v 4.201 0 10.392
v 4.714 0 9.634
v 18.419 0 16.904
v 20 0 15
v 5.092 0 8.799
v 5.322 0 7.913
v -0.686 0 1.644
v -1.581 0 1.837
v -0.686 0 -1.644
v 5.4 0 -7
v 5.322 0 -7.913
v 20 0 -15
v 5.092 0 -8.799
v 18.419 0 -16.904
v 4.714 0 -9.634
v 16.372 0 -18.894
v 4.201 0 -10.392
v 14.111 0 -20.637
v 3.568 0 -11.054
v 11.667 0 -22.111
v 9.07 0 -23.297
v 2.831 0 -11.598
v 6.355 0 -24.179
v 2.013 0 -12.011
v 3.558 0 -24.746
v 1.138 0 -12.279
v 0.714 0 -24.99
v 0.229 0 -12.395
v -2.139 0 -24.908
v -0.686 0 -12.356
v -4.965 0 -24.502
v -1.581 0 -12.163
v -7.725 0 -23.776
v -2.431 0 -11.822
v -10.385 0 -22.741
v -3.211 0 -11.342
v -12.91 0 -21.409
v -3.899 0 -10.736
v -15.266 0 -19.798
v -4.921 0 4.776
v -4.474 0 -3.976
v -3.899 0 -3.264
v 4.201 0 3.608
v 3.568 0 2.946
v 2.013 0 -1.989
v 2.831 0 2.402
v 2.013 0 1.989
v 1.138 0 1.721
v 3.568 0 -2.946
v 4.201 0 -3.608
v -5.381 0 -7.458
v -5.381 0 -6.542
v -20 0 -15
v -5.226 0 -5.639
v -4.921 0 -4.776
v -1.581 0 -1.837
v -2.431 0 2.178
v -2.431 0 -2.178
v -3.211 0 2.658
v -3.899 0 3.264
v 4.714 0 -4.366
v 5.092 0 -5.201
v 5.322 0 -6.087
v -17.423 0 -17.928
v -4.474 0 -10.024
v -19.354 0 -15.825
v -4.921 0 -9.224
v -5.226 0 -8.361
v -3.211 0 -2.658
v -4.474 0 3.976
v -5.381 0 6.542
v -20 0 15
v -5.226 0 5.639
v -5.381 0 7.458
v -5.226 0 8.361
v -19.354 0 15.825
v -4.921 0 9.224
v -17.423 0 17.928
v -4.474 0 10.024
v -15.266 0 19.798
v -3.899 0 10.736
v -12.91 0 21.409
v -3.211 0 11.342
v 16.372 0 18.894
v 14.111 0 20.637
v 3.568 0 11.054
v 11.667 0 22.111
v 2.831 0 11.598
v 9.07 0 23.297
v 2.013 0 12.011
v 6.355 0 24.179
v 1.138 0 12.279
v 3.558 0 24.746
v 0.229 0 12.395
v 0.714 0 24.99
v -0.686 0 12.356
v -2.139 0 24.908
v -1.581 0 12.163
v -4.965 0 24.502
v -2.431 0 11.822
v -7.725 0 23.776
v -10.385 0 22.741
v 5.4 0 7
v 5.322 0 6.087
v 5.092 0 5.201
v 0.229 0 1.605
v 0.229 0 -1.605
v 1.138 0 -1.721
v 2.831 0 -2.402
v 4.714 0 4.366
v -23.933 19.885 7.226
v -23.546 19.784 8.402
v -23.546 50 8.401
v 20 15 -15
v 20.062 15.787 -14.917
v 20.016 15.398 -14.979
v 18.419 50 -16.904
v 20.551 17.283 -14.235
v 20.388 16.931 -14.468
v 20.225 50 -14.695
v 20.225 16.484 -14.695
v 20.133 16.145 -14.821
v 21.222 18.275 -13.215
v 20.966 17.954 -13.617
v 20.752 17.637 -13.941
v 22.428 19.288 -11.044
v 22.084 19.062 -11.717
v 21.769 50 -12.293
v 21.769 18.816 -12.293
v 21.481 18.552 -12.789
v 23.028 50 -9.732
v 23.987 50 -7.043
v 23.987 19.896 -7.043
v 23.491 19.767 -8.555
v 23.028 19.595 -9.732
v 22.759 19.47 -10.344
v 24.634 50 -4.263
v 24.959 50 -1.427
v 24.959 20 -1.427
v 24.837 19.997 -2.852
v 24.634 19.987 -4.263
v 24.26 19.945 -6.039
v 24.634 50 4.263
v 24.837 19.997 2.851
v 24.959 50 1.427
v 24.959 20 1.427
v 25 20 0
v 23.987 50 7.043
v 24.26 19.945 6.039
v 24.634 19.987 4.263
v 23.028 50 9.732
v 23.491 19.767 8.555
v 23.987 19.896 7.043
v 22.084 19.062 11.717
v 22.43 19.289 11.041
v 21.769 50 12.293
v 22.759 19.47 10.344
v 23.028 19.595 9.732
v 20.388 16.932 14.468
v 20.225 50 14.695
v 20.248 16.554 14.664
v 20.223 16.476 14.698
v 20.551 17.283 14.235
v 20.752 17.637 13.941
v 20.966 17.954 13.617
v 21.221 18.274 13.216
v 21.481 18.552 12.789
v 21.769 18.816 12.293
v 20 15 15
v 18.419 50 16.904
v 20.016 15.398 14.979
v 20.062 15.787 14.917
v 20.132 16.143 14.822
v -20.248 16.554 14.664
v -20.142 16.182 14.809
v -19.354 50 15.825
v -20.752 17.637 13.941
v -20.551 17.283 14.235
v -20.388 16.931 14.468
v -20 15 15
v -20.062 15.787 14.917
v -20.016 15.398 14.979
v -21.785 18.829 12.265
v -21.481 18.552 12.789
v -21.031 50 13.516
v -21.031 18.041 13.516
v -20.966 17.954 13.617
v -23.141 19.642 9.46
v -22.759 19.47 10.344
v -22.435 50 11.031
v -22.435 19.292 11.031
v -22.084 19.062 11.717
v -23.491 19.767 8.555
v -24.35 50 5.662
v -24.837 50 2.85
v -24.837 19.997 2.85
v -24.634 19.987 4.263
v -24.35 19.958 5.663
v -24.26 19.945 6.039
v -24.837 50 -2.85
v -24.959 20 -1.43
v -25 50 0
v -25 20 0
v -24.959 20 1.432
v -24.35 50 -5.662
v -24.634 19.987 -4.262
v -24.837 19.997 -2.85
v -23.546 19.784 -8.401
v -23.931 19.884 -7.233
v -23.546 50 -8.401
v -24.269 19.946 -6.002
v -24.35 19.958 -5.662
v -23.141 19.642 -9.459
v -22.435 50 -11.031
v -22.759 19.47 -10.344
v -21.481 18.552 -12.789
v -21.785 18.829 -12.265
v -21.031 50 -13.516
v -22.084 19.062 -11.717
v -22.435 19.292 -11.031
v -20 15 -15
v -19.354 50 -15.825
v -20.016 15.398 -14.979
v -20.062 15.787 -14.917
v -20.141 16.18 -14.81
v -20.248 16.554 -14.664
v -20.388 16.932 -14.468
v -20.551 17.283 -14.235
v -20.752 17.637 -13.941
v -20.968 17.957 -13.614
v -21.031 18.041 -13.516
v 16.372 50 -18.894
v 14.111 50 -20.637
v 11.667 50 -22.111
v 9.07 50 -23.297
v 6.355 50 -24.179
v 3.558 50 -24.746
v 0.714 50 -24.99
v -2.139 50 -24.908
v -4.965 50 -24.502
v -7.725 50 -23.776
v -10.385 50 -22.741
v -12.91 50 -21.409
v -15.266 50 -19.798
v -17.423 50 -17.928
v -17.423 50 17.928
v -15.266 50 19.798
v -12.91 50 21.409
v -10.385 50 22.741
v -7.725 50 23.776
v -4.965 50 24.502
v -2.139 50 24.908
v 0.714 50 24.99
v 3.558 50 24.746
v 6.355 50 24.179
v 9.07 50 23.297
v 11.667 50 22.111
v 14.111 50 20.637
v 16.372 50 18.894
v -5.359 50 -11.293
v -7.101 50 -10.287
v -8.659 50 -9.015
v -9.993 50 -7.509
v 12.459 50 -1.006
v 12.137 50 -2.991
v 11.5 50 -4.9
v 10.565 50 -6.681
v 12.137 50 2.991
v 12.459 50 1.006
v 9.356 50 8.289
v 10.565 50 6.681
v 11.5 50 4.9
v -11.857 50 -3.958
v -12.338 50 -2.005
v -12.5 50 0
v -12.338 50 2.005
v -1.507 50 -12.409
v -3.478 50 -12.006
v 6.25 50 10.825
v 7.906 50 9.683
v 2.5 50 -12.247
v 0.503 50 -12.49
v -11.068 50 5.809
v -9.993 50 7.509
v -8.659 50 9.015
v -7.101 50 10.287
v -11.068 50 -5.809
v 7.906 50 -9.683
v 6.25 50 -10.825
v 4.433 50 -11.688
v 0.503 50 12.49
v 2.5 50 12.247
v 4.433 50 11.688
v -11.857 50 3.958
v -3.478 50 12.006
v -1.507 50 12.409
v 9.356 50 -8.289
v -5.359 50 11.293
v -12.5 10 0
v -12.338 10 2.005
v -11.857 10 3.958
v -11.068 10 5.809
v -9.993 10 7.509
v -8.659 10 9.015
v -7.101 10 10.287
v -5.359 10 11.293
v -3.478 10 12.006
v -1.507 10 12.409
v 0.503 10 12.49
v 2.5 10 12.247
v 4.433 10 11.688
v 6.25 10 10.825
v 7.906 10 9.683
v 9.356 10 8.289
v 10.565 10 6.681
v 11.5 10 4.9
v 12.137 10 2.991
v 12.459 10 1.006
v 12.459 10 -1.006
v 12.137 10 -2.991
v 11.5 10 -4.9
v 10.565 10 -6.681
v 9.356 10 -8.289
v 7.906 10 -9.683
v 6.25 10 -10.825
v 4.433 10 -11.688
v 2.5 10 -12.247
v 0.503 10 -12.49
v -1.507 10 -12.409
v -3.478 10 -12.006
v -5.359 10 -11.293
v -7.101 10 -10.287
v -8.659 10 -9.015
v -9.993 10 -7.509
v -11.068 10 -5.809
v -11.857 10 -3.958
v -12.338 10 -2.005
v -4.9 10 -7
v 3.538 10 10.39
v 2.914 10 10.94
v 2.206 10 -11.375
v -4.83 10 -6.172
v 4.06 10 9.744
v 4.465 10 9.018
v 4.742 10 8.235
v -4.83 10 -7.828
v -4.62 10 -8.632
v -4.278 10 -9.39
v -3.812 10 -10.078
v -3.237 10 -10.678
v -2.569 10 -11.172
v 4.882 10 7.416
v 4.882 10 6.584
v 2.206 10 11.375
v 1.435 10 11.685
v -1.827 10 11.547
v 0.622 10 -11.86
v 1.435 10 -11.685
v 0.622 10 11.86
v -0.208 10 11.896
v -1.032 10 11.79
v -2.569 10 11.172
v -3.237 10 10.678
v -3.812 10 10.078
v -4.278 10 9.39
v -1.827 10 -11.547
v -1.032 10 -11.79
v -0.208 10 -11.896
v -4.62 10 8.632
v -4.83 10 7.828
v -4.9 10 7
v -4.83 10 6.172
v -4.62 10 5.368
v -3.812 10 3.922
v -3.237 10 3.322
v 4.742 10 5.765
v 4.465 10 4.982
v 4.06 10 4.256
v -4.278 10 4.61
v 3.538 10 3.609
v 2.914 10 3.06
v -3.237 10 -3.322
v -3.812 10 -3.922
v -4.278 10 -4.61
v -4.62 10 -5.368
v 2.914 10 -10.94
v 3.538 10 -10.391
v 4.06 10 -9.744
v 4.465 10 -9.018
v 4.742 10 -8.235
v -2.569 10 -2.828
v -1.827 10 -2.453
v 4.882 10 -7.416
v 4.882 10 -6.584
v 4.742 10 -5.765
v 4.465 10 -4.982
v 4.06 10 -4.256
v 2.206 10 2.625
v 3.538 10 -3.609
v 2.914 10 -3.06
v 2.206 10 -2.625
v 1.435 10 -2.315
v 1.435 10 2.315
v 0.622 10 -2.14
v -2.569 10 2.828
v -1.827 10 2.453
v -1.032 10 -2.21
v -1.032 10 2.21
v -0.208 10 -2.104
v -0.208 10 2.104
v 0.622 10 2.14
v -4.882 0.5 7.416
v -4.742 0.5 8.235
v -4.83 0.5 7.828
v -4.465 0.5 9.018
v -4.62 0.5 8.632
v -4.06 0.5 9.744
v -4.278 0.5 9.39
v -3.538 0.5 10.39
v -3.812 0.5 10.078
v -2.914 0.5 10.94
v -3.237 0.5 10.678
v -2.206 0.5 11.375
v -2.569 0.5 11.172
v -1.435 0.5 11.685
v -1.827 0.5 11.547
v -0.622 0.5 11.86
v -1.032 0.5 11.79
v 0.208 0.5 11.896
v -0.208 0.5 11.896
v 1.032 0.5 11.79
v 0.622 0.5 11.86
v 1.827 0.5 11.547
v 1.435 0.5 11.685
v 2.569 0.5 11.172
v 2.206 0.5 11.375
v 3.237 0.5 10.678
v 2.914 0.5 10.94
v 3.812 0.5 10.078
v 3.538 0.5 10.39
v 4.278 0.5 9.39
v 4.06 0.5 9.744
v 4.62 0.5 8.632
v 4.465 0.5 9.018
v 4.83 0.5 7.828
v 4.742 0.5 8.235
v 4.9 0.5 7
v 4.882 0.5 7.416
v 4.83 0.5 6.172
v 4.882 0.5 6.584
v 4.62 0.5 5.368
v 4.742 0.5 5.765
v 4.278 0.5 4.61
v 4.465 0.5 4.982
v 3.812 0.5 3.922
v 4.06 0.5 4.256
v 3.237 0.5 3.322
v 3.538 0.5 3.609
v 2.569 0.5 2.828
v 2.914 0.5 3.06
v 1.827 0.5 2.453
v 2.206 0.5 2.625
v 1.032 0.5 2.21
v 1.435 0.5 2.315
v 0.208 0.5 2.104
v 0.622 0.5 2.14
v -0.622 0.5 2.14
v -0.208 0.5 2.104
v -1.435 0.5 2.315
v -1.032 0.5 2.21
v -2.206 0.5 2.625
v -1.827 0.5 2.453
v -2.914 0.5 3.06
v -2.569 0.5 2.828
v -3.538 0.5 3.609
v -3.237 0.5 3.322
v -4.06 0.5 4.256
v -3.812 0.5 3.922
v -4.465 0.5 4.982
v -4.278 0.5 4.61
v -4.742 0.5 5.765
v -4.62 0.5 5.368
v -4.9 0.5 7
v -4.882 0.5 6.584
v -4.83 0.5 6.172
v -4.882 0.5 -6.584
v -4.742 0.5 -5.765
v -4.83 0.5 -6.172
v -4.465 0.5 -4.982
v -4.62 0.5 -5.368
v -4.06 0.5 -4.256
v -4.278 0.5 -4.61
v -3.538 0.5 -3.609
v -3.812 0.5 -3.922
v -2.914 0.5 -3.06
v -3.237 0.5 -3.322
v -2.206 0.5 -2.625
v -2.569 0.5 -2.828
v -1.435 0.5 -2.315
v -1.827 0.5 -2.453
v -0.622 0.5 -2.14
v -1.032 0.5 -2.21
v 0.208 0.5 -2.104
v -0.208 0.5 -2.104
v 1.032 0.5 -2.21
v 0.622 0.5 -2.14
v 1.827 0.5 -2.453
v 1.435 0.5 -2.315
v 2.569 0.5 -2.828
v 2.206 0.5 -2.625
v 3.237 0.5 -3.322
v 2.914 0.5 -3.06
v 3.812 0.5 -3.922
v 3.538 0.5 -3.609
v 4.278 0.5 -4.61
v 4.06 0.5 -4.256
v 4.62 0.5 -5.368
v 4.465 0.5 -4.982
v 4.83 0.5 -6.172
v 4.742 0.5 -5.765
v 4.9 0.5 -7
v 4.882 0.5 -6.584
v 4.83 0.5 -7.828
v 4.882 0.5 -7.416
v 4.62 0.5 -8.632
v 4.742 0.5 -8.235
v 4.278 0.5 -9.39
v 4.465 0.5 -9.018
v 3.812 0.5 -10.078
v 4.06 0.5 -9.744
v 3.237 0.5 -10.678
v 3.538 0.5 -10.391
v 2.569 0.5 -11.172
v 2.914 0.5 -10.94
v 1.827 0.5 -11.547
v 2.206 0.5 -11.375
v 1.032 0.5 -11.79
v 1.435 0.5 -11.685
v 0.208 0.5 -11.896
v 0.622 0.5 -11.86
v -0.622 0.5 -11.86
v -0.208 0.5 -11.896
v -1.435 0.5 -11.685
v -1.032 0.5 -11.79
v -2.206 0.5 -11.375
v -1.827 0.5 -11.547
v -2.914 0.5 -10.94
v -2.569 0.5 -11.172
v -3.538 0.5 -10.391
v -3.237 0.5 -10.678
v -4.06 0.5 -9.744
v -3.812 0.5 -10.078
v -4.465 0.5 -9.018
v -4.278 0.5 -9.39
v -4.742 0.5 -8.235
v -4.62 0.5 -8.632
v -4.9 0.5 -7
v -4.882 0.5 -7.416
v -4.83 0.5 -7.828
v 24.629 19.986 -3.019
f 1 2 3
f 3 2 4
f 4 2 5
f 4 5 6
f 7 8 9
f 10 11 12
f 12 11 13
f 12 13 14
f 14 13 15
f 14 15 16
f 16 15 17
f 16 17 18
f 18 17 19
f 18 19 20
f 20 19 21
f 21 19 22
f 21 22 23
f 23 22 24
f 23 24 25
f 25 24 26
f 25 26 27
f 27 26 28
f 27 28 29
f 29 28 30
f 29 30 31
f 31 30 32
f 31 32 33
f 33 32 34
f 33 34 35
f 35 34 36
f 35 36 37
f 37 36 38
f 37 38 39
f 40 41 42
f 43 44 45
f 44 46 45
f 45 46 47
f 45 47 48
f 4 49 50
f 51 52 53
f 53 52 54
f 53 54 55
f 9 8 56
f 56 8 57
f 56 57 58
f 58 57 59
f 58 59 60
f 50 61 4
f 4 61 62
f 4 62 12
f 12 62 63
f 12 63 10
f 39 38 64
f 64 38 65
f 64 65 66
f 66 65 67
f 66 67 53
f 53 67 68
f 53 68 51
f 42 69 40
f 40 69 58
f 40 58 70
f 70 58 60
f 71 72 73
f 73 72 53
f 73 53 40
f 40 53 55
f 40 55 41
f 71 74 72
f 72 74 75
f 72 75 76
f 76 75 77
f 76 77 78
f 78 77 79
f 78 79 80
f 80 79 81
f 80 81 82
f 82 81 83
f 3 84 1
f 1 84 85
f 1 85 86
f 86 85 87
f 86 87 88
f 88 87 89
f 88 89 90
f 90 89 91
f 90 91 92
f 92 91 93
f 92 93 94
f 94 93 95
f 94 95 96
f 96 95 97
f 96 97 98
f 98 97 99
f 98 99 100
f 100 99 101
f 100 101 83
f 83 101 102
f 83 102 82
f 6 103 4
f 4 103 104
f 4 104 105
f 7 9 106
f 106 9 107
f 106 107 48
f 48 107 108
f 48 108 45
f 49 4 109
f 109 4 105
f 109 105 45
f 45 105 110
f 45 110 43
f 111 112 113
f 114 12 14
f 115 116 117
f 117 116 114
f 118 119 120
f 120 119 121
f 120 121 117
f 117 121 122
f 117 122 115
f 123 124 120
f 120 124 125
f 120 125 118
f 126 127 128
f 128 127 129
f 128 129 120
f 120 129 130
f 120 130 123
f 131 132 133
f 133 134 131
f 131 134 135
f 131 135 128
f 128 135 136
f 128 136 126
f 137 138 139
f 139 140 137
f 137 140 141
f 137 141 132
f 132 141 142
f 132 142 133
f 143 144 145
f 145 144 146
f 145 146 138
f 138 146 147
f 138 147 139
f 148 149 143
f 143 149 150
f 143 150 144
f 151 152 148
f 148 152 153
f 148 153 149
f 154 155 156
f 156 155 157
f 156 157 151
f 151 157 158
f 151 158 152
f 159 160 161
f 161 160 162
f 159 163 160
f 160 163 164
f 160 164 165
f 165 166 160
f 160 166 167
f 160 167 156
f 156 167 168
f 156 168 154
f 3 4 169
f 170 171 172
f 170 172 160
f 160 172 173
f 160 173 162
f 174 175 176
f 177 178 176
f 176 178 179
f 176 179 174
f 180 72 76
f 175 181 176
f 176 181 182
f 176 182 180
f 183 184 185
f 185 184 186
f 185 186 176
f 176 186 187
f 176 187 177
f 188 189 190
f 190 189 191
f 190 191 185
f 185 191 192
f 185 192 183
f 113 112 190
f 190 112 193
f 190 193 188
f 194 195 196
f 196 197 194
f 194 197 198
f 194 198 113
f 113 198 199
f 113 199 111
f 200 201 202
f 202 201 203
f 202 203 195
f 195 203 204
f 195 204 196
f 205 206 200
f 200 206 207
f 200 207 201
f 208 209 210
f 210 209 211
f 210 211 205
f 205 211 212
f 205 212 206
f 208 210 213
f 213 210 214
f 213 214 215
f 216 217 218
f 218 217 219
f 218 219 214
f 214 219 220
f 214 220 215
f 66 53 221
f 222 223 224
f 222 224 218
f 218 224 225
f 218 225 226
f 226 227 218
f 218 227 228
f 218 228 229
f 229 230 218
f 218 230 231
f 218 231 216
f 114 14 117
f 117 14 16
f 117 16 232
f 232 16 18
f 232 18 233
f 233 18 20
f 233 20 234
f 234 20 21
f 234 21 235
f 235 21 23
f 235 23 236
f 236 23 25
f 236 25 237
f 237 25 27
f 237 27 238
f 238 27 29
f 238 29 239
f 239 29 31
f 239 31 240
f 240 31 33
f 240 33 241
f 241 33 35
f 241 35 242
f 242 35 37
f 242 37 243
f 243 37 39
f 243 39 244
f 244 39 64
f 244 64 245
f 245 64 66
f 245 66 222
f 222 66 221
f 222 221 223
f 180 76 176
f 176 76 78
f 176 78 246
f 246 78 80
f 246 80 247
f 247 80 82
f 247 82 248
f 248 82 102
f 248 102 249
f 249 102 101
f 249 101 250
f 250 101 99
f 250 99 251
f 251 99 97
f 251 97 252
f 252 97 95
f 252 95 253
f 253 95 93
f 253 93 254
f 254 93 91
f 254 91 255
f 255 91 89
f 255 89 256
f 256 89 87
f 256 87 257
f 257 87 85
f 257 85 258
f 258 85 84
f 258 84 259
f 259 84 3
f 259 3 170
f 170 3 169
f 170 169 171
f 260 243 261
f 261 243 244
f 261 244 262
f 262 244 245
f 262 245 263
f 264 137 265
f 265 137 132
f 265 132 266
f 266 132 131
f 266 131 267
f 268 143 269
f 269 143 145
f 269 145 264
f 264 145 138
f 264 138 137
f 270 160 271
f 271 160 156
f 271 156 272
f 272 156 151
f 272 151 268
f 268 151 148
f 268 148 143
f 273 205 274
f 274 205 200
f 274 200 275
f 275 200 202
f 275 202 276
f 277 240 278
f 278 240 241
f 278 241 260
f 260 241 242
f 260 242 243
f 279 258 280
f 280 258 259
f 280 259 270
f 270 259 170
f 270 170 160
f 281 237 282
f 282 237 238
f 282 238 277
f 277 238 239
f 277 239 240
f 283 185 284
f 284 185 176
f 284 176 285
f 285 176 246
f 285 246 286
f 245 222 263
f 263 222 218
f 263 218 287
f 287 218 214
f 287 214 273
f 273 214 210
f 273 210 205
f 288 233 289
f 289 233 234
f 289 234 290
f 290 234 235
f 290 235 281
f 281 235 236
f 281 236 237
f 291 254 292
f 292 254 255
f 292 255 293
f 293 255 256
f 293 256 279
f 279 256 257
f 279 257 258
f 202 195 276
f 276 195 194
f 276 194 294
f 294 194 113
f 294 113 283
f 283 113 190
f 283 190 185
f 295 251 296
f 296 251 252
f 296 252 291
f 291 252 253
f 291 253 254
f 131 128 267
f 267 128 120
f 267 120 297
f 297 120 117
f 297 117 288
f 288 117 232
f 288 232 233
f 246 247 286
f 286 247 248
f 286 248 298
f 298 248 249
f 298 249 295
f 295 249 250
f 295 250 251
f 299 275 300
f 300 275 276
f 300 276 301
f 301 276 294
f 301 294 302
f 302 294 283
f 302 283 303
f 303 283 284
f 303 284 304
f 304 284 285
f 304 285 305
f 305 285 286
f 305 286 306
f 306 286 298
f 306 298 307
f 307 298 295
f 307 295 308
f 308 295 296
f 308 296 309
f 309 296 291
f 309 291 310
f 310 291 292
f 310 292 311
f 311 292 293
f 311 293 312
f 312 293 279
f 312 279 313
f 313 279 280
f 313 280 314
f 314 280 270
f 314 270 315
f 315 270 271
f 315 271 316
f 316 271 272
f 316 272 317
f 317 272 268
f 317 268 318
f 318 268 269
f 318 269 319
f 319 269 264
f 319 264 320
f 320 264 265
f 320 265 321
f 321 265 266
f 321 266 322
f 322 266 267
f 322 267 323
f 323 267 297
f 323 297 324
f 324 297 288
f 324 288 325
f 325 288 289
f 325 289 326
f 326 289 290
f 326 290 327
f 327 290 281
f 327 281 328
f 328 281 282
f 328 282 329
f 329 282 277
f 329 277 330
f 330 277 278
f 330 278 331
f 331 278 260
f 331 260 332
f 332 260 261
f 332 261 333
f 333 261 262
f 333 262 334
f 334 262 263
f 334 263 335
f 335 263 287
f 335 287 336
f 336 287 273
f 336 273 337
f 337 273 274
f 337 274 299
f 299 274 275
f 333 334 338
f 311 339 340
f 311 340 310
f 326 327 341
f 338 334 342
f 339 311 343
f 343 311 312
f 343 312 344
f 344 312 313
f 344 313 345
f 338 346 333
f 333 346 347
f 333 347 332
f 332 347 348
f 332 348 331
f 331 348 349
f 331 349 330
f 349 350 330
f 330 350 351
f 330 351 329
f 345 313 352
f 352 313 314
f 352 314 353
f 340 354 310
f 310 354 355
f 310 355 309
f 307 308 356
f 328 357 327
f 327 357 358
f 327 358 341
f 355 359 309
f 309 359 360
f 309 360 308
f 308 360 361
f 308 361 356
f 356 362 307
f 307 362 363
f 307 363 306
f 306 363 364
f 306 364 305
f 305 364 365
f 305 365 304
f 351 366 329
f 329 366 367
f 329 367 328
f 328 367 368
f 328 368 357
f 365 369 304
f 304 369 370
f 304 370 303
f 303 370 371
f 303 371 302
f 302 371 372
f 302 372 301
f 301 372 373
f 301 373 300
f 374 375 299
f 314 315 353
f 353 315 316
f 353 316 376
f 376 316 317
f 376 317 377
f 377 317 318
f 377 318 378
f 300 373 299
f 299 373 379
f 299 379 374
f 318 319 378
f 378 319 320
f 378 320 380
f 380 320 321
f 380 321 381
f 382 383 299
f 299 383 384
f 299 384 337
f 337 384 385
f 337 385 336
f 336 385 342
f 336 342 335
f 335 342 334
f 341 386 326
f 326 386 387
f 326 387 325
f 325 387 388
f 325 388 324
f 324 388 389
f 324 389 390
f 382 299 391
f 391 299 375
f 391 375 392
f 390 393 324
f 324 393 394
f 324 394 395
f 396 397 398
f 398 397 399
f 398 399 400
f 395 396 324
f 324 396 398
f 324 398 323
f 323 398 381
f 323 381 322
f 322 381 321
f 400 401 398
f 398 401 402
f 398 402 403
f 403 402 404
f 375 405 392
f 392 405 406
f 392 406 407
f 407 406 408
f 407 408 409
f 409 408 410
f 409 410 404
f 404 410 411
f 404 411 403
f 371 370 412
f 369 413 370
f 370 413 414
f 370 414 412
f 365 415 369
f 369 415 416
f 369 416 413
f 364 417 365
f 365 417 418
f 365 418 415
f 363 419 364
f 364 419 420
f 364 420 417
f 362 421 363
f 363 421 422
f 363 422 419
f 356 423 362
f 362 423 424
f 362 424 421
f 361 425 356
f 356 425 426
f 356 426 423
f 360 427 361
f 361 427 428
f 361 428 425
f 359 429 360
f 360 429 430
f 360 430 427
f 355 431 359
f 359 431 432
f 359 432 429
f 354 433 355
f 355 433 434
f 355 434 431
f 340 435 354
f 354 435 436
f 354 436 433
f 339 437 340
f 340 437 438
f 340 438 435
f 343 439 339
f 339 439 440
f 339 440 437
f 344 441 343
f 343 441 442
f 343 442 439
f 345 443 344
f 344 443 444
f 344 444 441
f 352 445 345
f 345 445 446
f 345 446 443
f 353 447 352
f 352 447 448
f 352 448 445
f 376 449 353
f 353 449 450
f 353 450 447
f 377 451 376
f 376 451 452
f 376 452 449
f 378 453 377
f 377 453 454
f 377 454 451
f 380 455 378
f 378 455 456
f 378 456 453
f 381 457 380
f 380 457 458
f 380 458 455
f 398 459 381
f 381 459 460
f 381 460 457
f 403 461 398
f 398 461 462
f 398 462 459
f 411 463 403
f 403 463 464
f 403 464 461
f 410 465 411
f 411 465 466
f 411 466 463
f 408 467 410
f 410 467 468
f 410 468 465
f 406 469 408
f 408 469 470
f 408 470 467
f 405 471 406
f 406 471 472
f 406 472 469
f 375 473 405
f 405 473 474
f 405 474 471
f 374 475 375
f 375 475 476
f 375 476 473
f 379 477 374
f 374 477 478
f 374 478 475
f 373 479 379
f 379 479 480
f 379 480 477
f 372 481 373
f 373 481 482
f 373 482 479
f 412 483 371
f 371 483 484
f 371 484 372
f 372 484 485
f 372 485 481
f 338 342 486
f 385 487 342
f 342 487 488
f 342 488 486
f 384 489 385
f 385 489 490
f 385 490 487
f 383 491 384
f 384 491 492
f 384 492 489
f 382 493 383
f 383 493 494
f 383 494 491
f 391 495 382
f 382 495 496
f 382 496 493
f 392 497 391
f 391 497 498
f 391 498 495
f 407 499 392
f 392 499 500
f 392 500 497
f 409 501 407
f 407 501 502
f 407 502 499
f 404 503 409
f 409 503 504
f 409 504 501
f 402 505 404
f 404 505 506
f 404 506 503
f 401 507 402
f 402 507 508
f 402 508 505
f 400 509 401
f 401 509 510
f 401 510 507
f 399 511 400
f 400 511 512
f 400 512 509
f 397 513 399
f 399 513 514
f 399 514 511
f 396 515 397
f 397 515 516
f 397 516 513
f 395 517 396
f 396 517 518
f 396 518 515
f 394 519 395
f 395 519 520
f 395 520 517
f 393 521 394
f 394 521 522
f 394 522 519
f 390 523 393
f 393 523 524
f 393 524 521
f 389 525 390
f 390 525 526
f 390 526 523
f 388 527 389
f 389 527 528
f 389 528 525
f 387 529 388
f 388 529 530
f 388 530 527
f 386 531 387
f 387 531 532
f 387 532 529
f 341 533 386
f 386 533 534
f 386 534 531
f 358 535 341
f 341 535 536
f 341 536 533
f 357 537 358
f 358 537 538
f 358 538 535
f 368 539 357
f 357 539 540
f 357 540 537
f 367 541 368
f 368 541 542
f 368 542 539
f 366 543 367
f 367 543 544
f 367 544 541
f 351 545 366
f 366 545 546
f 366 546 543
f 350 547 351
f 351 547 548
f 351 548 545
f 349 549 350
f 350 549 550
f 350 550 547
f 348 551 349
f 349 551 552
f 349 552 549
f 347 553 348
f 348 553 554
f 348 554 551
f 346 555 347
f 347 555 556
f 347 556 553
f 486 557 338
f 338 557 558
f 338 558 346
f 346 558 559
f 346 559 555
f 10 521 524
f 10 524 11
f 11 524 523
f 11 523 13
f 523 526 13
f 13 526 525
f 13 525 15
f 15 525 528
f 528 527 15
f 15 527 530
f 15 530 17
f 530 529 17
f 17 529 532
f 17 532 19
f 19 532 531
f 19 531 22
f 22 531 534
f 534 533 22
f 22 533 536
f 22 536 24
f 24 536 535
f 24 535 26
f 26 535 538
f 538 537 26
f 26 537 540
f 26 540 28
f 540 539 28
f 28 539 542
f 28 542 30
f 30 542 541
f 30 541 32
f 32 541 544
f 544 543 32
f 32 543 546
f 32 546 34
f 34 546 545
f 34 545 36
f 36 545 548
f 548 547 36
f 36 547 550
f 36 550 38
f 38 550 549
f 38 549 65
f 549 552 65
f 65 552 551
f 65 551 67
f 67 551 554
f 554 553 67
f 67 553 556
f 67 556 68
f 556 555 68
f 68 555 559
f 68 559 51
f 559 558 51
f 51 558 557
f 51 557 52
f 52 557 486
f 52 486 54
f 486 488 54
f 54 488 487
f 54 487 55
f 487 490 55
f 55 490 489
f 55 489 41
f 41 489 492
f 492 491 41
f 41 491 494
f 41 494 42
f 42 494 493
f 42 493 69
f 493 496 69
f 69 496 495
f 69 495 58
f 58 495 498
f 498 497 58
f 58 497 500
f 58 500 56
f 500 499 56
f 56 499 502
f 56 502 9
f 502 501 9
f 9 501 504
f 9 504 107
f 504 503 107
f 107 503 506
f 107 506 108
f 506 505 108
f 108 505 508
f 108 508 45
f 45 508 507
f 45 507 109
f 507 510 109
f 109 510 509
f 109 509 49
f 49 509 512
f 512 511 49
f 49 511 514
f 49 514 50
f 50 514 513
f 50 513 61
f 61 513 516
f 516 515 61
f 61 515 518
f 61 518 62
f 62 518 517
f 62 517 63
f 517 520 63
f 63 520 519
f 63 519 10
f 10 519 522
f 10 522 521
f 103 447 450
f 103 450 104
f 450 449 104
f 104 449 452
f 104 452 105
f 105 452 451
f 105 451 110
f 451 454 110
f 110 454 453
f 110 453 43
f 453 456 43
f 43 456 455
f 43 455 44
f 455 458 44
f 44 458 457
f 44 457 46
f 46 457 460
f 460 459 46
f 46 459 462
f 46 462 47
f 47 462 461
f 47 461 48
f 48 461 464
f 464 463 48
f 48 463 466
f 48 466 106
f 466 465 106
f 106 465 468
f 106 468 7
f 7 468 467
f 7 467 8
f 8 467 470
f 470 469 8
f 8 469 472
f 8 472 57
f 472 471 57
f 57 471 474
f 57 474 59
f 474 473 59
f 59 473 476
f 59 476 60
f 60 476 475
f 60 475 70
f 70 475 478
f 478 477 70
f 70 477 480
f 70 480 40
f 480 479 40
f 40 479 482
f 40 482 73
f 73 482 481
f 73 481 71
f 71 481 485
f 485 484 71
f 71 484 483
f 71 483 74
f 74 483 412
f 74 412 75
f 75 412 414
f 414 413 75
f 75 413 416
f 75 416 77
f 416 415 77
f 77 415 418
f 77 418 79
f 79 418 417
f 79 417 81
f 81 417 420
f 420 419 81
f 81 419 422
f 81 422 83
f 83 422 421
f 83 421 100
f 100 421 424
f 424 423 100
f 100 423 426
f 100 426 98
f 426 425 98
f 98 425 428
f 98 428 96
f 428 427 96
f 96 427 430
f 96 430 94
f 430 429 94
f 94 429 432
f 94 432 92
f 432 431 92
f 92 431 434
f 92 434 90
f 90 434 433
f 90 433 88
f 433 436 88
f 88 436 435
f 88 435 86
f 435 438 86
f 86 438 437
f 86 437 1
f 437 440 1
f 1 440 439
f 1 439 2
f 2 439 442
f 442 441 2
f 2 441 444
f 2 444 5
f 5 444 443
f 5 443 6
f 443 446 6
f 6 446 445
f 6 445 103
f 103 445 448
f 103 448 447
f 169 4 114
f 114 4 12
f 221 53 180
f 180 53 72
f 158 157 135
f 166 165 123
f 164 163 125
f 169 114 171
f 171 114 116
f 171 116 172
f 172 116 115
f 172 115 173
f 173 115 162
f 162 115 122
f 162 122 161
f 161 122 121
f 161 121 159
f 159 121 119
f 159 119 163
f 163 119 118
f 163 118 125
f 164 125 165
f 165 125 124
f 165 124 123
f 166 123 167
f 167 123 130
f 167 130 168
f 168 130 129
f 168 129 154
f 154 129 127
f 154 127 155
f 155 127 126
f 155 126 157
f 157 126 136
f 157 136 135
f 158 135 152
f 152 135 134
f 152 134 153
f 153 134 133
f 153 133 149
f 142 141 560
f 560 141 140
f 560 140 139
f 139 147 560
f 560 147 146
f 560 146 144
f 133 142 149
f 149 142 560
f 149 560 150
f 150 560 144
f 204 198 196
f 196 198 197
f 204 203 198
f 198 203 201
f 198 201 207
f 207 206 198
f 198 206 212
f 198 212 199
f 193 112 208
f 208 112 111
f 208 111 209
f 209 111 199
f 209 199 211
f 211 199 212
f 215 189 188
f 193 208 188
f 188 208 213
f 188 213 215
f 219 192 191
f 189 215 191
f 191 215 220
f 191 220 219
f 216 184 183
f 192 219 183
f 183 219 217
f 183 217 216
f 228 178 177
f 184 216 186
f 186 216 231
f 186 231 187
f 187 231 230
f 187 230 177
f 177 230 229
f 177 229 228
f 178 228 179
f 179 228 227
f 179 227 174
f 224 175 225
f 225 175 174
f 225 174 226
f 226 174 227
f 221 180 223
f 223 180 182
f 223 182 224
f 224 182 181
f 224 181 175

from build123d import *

# Parameters (mm, degrees)
ESBO_O2_R                  = 4.9
CORTE_EXTRUS_O1_DEPTH      = 10
CHANFRO1_SIZE              = 0.5
CORTE_EXTRUS_O2_DEPTH      = 62.23724357
CORTE_EXTRUS_O2_DEPTH_BACK = 62.23724357
ESBO_O3_W                  = 5
ESBO_O3_H                  = 20
FILETE1_R                  = 5


with BuildPart() as part:
    # Esboço1 → Revolução1 (revolve)
    with BuildSketch(Plane.XY):
        Polygon((0, 0), (-25, 0), (-25, 50), (-12.5, 50), (-12.5, 10), (0, 10), align=None)
    revolve(axis=Axis((0, 10, 0), (0, -1, 0)))

    # Esboço2 → Corte-extrusão1 (cut)
    with BuildSketch(Plane(origin=(0, 10, 0), x_dir=(1, 0, 0), z_dir=(0, 1, 0))):
        with Locations(Location((0, 7, 0), (0, 0, 180))):
            Circle(ESBO_O2_R)
        with Locations(Location((0, -7, 0), (0, 0, 180))):
            Circle(ESBO_O2_R)
    extrude(amount=-CORTE_EXTRUS_O1_DEPTH, mode=Mode.SUBTRACT)

    # Chanfro1
    chanfro1_edges = [part.edges().sort_by_distance(p)[0] for p in [
        (4.9, 0, -7),
        (4.9, 0, 7),
    ]]
    chamfer(chanfro1_edges, length=CHANFRO1_SIZE)

    # Esboço3 → Corte-extrusão2 (cut, two sides: drawn at the far end of the back side and taken through both)
    with BuildSketch(Plane.XY.offset(-CORTE_EXTRUS_O2_DEPTH_BACK)):
        with Locations((-22.5, 10)):
            Rectangle(ESBO_O3_W, ESBO_O3_H)
        with Locations((22.5, 10)):
            Rectangle(ESBO_O3_W, ESBO_O3_H)
    extrude(amount=CORTE_EXTRUS_O2_DEPTH + CORTE_EXTRUS_O2_DEPTH_BACK, mode=Mode.SUBTRACT)

    # Filete1
    filete1_edges = [part.edges().sort_by_distance(p)[0] for p in [
        (20, 20, 0),
        (-20, 20, 0),
    ]]
    fillet(filete1_edges, radius=FILETE1_R - 0.0001)  # a hair under: the kernel refuses the full size


solid = part.part
